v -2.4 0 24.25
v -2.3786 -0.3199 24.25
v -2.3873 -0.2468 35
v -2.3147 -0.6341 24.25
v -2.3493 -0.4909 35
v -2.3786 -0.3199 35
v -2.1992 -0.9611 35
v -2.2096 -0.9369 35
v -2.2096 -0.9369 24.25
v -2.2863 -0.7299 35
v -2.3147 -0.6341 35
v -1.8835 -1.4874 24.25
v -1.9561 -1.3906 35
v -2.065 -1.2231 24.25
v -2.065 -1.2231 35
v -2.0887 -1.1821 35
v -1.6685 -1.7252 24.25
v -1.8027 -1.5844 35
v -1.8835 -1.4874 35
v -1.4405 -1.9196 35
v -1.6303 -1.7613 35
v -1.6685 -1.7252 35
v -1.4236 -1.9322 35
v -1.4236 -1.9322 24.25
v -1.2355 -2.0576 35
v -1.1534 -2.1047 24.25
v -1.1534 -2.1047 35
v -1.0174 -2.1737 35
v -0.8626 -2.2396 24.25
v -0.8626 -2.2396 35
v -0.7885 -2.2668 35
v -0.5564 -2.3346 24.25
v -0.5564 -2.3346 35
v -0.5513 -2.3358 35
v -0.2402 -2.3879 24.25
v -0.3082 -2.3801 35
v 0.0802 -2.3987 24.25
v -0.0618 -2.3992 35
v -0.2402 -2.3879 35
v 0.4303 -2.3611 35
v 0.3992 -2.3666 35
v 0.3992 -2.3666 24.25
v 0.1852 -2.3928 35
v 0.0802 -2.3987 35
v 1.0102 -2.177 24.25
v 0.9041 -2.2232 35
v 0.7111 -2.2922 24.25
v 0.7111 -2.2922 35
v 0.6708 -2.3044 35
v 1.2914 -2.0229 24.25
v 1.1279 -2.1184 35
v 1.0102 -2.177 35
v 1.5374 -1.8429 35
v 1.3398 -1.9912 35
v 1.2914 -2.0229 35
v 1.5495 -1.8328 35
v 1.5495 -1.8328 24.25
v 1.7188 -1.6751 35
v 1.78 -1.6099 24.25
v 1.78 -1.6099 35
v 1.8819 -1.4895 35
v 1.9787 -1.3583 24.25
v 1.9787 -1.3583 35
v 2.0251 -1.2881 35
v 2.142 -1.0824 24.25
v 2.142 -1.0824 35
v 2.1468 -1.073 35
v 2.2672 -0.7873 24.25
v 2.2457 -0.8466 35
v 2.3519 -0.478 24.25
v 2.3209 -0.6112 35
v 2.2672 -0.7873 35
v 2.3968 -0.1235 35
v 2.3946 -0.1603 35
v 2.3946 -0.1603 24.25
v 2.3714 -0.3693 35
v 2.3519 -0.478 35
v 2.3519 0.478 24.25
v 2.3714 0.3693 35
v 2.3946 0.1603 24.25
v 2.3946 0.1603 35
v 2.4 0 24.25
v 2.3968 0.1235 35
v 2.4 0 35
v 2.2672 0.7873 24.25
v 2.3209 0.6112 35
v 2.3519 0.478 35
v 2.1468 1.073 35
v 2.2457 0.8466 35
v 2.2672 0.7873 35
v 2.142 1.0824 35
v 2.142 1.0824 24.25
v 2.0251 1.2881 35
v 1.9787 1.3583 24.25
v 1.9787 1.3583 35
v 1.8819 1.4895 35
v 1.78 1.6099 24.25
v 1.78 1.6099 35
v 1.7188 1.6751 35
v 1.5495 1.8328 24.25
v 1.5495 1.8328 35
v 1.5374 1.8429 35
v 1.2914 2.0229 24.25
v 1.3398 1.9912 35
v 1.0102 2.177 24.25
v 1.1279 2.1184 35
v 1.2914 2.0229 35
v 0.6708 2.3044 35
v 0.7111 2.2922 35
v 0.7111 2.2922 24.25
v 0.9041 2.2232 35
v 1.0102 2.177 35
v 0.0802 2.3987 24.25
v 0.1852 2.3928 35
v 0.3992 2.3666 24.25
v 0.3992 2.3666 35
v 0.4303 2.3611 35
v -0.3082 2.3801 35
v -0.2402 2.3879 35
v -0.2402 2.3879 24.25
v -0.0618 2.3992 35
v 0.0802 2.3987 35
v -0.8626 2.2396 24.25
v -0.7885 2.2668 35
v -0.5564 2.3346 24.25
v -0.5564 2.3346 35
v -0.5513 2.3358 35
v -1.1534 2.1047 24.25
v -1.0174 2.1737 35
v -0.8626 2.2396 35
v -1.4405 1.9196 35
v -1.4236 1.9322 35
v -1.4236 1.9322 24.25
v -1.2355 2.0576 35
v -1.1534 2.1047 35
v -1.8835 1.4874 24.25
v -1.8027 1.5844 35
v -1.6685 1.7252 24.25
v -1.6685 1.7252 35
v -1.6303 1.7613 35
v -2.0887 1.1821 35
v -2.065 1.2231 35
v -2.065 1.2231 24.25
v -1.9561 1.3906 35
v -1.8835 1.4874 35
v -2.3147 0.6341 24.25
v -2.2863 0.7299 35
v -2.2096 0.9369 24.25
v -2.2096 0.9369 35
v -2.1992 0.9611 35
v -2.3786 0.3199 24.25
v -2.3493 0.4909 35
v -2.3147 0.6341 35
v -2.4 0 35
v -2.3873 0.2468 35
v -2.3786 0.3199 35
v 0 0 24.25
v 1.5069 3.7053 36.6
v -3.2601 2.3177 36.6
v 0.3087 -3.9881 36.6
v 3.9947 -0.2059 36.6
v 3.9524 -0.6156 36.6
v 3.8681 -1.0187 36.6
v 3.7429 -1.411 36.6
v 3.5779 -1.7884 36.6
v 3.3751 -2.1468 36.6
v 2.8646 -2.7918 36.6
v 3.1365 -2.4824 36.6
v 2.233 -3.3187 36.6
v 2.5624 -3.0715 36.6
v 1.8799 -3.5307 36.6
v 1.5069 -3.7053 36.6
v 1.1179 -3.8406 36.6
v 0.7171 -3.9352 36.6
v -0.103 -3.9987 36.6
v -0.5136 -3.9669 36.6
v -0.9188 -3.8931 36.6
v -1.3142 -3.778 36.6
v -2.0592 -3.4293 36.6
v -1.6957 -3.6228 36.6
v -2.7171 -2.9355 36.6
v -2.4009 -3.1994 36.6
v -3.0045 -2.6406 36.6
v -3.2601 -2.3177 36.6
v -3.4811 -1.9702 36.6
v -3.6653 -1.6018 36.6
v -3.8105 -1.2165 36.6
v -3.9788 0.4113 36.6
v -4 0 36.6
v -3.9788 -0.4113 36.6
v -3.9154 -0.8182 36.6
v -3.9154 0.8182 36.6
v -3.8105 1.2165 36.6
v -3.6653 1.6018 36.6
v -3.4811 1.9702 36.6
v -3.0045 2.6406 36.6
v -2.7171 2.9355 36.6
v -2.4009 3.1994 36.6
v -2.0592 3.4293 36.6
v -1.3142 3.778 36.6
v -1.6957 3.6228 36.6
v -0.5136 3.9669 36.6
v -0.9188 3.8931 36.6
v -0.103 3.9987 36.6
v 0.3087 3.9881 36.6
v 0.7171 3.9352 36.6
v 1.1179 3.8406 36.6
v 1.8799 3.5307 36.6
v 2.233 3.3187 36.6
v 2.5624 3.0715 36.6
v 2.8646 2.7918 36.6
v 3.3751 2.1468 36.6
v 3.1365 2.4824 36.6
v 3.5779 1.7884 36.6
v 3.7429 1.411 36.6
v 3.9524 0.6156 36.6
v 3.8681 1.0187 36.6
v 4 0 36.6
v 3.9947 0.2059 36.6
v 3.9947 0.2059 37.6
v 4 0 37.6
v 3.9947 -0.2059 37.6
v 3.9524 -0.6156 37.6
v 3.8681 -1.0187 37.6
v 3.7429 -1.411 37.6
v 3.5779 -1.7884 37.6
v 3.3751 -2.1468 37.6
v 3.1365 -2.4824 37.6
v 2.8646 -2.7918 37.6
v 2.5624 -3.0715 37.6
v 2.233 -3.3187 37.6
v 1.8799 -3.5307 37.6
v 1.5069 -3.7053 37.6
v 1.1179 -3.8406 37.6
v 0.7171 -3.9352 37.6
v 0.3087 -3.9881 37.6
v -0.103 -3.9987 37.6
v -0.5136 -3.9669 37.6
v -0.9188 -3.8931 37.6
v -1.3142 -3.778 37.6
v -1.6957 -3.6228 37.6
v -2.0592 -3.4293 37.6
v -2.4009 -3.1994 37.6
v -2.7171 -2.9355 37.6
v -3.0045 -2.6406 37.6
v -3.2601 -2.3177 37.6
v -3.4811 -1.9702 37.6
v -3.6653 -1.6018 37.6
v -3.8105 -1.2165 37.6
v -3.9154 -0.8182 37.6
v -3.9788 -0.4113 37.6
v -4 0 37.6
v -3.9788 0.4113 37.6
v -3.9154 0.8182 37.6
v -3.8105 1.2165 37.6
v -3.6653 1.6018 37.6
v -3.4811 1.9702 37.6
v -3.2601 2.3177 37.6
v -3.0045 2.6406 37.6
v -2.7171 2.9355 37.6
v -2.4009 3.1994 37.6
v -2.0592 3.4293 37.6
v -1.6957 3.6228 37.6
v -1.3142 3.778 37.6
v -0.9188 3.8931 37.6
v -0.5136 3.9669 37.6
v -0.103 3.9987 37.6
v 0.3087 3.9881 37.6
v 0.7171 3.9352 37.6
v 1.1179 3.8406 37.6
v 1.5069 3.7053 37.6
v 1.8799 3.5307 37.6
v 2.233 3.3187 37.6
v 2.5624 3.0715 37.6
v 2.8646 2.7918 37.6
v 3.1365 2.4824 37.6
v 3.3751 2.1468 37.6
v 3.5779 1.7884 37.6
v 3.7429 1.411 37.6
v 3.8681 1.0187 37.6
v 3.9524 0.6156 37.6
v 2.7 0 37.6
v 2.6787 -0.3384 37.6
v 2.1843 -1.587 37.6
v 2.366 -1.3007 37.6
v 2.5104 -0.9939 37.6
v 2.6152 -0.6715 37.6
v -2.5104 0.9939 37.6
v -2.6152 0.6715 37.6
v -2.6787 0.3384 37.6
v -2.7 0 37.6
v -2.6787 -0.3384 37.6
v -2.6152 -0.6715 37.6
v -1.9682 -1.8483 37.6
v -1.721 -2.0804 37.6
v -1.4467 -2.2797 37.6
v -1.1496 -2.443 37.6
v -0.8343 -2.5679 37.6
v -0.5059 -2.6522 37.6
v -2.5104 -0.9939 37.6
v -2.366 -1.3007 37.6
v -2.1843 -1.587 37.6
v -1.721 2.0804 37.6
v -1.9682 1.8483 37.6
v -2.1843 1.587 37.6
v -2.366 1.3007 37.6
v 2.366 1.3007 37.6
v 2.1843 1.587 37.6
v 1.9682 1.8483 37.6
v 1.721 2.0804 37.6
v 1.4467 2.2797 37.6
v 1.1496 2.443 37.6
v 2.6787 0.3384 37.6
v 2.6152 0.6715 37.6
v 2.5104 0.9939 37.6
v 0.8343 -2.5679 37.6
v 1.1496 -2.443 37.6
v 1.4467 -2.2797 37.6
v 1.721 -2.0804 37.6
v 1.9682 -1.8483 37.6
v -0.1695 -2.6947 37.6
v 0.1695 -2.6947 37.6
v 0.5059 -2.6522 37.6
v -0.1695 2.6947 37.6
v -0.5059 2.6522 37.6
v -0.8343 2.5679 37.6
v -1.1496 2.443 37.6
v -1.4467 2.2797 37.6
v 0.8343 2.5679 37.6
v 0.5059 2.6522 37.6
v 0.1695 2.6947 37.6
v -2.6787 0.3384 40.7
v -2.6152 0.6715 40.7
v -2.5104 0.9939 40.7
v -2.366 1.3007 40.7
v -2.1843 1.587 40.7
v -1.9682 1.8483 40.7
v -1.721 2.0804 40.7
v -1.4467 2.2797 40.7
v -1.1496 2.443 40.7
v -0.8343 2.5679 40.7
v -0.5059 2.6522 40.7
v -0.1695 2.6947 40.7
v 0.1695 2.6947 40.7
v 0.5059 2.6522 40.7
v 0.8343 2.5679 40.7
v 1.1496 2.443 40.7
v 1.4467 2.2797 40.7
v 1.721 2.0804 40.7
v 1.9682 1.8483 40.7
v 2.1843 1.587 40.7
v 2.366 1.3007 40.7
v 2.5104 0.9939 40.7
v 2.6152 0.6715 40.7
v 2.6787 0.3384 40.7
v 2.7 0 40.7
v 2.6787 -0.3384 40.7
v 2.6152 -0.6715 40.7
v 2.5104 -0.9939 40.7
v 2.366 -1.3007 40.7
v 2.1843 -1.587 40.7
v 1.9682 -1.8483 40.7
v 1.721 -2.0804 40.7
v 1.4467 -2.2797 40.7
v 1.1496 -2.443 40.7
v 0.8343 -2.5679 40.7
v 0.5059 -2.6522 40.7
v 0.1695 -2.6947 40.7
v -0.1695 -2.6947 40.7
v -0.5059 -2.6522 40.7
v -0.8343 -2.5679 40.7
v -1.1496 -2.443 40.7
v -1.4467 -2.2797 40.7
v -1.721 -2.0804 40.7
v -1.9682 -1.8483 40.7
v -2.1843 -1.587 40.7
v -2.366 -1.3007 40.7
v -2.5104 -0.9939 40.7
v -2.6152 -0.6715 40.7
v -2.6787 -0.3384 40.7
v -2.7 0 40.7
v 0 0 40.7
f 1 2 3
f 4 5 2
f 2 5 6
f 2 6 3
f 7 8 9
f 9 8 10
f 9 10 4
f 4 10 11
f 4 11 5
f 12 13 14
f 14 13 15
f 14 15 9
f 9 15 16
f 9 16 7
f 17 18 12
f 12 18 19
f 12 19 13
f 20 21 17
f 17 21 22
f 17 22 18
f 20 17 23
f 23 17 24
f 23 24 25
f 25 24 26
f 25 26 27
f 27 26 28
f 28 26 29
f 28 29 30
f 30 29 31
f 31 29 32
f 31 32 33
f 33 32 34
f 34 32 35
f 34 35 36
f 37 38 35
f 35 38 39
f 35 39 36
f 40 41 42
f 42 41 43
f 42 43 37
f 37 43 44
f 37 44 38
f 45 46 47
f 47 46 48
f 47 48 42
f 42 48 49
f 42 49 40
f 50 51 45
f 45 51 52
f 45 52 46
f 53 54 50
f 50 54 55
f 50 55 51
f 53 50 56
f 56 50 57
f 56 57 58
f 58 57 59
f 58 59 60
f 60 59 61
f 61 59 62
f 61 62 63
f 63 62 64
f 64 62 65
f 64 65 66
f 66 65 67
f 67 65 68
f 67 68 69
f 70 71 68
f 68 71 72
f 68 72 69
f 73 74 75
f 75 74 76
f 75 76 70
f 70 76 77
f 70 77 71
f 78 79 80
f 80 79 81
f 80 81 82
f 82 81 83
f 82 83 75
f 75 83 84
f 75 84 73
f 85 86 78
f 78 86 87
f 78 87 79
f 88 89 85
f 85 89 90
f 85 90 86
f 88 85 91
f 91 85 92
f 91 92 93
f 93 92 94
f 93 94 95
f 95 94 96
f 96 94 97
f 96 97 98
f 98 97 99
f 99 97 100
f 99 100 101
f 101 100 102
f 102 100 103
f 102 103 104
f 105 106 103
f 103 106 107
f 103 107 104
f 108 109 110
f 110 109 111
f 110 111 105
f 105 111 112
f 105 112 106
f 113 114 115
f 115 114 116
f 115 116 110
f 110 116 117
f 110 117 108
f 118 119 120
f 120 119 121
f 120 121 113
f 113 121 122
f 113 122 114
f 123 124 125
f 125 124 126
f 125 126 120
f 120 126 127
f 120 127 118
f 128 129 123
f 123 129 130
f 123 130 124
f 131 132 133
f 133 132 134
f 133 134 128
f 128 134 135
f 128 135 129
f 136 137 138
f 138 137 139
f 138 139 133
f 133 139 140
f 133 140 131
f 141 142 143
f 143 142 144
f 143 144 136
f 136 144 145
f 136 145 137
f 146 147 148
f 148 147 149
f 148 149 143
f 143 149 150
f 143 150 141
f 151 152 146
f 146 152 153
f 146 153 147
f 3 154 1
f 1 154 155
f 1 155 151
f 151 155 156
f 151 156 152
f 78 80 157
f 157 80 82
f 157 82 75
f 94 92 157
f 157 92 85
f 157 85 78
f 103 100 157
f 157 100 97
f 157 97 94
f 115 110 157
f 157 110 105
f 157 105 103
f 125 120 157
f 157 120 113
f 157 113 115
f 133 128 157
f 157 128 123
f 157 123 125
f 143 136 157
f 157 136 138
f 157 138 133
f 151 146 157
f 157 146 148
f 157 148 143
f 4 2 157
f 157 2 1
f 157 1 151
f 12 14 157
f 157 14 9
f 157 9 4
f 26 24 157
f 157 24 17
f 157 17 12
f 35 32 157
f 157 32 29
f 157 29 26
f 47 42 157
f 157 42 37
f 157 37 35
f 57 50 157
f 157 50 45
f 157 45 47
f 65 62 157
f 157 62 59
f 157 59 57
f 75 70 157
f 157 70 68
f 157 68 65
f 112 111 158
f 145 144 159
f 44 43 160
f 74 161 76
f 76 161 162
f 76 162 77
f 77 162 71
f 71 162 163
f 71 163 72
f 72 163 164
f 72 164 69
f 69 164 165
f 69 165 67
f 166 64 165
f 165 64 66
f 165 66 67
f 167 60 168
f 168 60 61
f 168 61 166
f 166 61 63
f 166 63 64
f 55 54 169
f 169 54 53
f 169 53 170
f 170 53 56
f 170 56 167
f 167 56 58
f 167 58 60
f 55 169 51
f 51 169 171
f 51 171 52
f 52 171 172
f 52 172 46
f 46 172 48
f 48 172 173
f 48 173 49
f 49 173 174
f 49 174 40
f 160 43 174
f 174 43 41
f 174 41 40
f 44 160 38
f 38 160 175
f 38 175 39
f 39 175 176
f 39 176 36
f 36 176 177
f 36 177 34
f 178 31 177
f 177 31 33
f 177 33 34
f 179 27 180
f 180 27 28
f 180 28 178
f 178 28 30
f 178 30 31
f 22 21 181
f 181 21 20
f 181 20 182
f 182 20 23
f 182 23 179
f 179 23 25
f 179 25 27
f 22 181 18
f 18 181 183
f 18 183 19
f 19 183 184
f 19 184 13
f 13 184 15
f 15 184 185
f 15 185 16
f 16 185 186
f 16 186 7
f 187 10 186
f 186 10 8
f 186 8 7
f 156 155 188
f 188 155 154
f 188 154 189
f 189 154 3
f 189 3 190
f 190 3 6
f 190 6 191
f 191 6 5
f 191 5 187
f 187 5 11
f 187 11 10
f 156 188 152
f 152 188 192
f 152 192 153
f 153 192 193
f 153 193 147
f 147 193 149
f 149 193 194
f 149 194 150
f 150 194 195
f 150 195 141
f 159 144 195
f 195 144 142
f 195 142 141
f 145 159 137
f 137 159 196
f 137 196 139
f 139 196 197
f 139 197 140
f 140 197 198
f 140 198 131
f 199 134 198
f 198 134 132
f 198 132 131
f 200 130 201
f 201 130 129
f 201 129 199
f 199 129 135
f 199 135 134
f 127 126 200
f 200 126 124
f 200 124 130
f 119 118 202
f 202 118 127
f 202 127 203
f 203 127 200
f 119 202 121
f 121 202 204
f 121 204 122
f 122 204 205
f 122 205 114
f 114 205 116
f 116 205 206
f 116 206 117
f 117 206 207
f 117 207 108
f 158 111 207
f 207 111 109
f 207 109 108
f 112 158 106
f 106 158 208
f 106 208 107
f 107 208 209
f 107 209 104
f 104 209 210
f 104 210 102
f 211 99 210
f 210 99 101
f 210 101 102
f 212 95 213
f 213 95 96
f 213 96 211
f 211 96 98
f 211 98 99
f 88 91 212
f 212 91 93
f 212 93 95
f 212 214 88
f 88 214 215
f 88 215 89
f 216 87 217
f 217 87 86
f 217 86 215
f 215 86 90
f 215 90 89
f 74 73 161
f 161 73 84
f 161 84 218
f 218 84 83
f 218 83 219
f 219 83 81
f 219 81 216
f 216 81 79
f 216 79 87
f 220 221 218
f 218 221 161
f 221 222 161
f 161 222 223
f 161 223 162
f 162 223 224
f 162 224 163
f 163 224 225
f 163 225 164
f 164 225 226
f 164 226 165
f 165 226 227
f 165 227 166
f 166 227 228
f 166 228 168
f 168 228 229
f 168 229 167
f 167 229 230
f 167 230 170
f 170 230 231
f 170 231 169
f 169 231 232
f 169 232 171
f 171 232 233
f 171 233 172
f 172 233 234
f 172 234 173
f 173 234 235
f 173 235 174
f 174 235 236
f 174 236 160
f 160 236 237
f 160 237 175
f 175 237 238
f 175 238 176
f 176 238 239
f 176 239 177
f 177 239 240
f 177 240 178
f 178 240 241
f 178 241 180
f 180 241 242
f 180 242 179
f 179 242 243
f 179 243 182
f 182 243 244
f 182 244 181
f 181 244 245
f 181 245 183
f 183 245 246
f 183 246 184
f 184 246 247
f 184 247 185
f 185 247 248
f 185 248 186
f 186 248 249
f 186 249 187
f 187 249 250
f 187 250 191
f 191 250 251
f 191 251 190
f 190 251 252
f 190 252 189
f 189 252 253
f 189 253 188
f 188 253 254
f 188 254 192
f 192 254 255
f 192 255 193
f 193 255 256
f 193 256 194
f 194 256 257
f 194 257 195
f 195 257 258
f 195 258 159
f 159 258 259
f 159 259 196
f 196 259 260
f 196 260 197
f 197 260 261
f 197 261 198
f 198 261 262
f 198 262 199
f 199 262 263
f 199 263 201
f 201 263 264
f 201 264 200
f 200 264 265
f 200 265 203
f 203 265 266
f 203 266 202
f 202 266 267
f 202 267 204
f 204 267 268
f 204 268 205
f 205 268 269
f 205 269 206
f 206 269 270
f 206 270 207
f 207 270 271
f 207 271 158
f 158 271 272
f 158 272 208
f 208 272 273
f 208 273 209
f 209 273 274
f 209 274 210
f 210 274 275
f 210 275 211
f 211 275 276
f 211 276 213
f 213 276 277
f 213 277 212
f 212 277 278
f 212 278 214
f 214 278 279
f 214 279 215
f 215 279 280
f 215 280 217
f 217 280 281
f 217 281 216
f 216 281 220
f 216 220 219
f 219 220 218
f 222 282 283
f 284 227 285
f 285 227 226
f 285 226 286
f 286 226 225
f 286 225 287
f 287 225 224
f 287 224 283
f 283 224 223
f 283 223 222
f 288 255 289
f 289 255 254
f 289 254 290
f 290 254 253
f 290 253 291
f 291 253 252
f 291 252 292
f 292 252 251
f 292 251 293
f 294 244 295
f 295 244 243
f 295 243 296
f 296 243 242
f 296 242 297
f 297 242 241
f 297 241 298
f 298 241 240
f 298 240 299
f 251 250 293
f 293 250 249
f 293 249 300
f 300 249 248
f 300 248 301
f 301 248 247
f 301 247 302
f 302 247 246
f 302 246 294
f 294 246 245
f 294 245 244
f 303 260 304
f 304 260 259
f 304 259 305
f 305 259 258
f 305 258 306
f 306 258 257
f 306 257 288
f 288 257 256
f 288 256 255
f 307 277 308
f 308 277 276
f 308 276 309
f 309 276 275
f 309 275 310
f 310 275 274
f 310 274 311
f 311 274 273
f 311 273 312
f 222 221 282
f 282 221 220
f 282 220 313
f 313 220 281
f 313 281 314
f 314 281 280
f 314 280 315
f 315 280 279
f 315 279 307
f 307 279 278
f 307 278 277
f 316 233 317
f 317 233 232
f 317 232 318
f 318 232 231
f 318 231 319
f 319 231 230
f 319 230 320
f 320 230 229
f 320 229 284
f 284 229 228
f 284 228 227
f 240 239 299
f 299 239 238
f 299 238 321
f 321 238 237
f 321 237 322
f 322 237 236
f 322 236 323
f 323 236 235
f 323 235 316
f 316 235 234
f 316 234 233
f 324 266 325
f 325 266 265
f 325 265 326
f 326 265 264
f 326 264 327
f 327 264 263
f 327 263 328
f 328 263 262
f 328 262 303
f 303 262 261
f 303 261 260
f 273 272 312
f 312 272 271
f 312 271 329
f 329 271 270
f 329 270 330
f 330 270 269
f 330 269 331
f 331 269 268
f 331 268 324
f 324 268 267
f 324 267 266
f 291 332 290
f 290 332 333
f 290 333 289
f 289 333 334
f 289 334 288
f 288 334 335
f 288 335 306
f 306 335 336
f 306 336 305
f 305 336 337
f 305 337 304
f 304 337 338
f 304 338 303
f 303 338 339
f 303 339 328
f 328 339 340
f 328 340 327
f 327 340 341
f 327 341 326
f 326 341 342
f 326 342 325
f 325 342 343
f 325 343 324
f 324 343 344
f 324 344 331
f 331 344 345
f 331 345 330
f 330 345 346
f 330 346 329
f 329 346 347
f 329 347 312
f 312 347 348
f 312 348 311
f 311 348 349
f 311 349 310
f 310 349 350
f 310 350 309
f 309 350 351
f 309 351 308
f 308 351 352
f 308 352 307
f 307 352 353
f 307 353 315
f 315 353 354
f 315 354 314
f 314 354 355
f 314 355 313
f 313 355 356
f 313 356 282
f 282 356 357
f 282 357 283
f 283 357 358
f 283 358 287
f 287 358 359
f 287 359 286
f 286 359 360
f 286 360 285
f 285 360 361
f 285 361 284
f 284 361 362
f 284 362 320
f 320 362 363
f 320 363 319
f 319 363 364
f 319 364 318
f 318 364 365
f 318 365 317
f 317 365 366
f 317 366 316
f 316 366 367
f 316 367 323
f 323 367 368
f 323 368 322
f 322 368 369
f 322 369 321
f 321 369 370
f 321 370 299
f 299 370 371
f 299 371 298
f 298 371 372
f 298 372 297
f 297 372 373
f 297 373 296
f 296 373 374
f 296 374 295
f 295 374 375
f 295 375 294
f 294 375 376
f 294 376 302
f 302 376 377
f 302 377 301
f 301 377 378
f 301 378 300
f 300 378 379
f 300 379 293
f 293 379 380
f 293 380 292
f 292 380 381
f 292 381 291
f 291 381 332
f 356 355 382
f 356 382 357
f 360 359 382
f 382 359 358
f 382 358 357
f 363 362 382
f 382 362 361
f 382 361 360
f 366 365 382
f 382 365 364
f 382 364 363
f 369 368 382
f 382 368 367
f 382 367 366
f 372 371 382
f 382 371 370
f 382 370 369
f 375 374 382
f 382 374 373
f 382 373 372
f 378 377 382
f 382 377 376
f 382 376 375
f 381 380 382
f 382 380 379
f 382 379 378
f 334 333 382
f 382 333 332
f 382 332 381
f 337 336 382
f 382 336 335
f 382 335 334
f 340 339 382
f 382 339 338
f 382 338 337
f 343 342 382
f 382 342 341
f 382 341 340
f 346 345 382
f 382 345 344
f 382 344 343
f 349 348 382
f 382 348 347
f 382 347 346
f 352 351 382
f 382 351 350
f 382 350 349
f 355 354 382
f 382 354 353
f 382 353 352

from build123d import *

# Parameters (mm, degrees)
PLUNGER_STEM_START          = 24.25
SKETCH_1_R                  = 2.4
PLUNGER_STEM_DEPTH          = 10.75
PRINTABLE_FLANGE_RAMP_START = 35
SKETCH_2_R                  = 2.4
PRINTABLE_FLANGE_RAMP_DEPTH = 1.6
PRINTABLE_FLANGE_RAMP_DRAFT = -45
CAPTIVE_FLANGE_START        = 36.6
SKETCH_3_R                  = 4
CAPTIVE_FLANGE_DEPTH        = 1
EXPOSED_KEY_CAP_START       = 37.6
SKETCH_4_R                  = 2.7
EXPOSED_KEY_CAP_DEPTH       = 3.1


with BuildPart() as part:
    # 草图1 → Plunger_stem (new body)
    with BuildSketch(Plane.XY.offset(PLUNGER_STEM_START)):
        Circle(SKETCH_1_R)
    extrude(amount=PLUNGER_STEM_DEPTH)


with BuildPart() as printable_flange_ramp_tool:
    # 草图2 → Printable_flange_ramp (with draft: the straight prism first)
    with BuildSketch(Plane.XY.offset(PRINTABLE_FLANGE_RAMP_START)):
        Circle(SKETCH_2_R)
    extrude(amount=PRINTABLE_FLANGE_RAMP_DEPTH)
    # Printable_flange_ramp: the draft: its side faces are tilted about the plane it starts from
    printable_flange_ramp_sides = [printable_flange_ramp_tool.faces().sort_by_distance(p)[0] for p in [
        (-2.4, 0, 35.8),
    ]]
    draft(printable_flange_ramp_sides, Plane.XY.offset(PRINTABLE_FLANGE_RAMP_START), PRINTABLE_FLANGE_RAMP_DRAFT)


with BuildPart() as part_1:
    add(part.part)

    # Printable_flange_ramp: add printable_flange_ramp_tool
    add(printable_flange_ramp_tool.part)

    # 草图3 → Captive_flange (add)
    with BuildSketch(Plane.XY.offset(CAPTIVE_FLANGE_START)):
        Circle(SKETCH_3_R)
    extrude(amount=CAPTIVE_FLANGE_DEPTH)

    # 草图4 → Exposed_key_cap (add)
    with BuildSketch(Plane.XY.offset(EXPOSED_KEY_CAP_START)):
        Circle(SKETCH_4_R)
    extrude(amount=EXPOSED_KEY_CAP_DEPTH)


solid = part_1.part
